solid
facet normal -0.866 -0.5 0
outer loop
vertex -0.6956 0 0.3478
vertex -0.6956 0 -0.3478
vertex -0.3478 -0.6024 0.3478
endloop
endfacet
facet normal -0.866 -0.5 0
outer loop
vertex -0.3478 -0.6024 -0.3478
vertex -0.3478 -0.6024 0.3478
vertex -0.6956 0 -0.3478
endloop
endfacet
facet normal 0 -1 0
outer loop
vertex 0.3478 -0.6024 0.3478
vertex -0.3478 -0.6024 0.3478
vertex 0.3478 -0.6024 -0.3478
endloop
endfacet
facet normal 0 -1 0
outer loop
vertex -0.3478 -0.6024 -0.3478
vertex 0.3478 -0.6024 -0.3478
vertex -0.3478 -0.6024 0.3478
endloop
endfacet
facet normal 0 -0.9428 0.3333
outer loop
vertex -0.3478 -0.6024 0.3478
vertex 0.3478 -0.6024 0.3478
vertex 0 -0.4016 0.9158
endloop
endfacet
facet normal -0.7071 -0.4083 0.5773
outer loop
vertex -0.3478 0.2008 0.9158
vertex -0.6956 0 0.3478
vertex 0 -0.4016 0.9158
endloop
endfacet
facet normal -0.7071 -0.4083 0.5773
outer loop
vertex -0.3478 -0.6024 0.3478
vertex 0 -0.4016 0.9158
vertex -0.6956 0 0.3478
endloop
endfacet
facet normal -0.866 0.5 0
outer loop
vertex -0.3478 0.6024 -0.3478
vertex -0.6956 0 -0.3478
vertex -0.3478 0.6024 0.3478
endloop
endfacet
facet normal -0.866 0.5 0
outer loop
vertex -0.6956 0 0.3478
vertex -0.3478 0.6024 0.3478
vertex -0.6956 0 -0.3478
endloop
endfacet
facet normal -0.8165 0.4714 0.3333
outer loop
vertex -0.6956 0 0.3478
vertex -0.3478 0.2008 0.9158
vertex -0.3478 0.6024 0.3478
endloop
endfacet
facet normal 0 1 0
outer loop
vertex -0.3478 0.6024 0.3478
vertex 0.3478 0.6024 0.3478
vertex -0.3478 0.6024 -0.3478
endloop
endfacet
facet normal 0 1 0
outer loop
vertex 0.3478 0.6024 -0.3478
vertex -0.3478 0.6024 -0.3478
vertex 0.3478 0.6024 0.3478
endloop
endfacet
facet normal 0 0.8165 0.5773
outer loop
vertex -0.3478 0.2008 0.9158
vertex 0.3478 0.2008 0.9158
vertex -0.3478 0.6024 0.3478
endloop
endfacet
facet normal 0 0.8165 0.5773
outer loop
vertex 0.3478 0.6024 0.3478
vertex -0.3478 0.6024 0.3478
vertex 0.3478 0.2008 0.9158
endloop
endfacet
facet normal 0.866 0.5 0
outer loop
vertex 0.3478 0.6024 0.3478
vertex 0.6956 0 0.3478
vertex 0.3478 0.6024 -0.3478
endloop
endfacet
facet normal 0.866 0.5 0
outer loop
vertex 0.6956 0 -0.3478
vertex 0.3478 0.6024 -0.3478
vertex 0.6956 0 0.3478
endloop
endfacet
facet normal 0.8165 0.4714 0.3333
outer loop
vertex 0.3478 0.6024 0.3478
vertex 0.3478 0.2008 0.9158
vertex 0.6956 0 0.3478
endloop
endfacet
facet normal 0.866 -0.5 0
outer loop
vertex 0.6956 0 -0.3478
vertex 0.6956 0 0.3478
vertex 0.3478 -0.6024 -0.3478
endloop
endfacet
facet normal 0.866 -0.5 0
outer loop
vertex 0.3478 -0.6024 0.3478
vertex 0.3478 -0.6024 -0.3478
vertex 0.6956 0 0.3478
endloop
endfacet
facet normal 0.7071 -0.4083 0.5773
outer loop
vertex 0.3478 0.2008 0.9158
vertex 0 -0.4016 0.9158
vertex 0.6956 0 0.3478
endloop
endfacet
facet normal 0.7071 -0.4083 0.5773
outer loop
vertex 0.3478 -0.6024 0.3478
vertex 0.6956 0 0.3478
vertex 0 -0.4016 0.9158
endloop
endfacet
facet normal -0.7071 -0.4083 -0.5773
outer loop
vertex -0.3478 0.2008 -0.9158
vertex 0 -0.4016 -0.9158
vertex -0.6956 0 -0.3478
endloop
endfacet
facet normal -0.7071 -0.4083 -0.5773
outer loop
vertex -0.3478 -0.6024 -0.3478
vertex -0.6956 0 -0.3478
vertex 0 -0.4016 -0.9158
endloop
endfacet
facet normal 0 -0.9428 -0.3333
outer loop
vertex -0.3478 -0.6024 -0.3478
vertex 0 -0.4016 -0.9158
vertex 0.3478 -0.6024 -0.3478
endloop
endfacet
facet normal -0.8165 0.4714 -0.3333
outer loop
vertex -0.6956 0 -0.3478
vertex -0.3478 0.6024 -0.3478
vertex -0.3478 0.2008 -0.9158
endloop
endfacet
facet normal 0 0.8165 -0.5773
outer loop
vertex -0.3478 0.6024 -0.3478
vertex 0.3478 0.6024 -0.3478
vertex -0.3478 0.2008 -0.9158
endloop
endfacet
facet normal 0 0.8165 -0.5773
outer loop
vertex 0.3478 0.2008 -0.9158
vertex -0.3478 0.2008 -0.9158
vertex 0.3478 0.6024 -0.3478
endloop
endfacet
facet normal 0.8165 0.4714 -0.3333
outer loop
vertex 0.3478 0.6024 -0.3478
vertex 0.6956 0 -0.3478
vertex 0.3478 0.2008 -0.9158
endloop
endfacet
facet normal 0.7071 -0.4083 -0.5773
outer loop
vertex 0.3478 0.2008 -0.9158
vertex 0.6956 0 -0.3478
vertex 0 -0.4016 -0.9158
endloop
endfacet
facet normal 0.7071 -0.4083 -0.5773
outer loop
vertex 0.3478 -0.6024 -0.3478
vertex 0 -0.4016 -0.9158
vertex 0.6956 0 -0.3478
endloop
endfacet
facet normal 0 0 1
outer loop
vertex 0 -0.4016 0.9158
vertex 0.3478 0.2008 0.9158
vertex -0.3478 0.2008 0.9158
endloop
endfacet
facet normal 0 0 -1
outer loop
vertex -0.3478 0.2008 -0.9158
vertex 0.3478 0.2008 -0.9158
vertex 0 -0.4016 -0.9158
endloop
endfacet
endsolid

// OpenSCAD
polyhedron( points = [[-0.34781848471797, -0.602439287405289, 0.347818484793], [-0.695636969497949, 1.28542017441192e-10, 0.347818484793], [-0.347818484880254, 0.60243928763114, 0.347818484793], [0.347818484535451, 0.60243928763114, 0.347818484793], [0.695636969369527, 1.28543407603117e-10, 0.347818484793], [0.347818484805926, -0.602439287405289, 0.347818484793], [-0.347818484686738, -0.602439287351194, -0.347818484730896], [-0.695636969455286, 1.62836925965542e-10, -0.347818484645569], [-0.347818484632643, 0.602439287452118, -0.347818484730896], [0.347818484868394, 0.602439287071208, -0.347818484901549], [0.695636969582837, -4.74051472024973e-10, -0.347818484986876], [0.347818484814295, -0.602439287669638, -0.347818484901549], [6.20099875814156e-11, -0.401626191496854, 0.915803691943805], [0.347818484558312, 0.20081309594124, 0.915803691943805], [-0.347818484686737, 0.200813095991187, 0.915803691949675], [-0.347818484722717, 0.20081309583992, -0.915803691812034], [0.347818484661754, 0.200813095448604, -0.915803691982688], [2.17882395382644e-11, -0.401626191624163, -0.915803691903225]], faces = [[0, 1, 7, 6], [0, 6, 11, 5], [0, 5, 12], [0, 12, 14, 1], [1, 2, 8, 7], [1, 14, 2], [2, 3, 9, 8], [2, 14, 13, 3], [3, 4, 10, 9], [3, 13, 4], [4, 5, 11, 10], [4, 13, 12, 5], [6, 7, 15, 17], [6, 17, 11], [7, 8, 15], [8, 9, 16, 15], [9, 10, 16], [10, 11, 17, 16], [12, 13, 14], [15, 16, 17]]);
